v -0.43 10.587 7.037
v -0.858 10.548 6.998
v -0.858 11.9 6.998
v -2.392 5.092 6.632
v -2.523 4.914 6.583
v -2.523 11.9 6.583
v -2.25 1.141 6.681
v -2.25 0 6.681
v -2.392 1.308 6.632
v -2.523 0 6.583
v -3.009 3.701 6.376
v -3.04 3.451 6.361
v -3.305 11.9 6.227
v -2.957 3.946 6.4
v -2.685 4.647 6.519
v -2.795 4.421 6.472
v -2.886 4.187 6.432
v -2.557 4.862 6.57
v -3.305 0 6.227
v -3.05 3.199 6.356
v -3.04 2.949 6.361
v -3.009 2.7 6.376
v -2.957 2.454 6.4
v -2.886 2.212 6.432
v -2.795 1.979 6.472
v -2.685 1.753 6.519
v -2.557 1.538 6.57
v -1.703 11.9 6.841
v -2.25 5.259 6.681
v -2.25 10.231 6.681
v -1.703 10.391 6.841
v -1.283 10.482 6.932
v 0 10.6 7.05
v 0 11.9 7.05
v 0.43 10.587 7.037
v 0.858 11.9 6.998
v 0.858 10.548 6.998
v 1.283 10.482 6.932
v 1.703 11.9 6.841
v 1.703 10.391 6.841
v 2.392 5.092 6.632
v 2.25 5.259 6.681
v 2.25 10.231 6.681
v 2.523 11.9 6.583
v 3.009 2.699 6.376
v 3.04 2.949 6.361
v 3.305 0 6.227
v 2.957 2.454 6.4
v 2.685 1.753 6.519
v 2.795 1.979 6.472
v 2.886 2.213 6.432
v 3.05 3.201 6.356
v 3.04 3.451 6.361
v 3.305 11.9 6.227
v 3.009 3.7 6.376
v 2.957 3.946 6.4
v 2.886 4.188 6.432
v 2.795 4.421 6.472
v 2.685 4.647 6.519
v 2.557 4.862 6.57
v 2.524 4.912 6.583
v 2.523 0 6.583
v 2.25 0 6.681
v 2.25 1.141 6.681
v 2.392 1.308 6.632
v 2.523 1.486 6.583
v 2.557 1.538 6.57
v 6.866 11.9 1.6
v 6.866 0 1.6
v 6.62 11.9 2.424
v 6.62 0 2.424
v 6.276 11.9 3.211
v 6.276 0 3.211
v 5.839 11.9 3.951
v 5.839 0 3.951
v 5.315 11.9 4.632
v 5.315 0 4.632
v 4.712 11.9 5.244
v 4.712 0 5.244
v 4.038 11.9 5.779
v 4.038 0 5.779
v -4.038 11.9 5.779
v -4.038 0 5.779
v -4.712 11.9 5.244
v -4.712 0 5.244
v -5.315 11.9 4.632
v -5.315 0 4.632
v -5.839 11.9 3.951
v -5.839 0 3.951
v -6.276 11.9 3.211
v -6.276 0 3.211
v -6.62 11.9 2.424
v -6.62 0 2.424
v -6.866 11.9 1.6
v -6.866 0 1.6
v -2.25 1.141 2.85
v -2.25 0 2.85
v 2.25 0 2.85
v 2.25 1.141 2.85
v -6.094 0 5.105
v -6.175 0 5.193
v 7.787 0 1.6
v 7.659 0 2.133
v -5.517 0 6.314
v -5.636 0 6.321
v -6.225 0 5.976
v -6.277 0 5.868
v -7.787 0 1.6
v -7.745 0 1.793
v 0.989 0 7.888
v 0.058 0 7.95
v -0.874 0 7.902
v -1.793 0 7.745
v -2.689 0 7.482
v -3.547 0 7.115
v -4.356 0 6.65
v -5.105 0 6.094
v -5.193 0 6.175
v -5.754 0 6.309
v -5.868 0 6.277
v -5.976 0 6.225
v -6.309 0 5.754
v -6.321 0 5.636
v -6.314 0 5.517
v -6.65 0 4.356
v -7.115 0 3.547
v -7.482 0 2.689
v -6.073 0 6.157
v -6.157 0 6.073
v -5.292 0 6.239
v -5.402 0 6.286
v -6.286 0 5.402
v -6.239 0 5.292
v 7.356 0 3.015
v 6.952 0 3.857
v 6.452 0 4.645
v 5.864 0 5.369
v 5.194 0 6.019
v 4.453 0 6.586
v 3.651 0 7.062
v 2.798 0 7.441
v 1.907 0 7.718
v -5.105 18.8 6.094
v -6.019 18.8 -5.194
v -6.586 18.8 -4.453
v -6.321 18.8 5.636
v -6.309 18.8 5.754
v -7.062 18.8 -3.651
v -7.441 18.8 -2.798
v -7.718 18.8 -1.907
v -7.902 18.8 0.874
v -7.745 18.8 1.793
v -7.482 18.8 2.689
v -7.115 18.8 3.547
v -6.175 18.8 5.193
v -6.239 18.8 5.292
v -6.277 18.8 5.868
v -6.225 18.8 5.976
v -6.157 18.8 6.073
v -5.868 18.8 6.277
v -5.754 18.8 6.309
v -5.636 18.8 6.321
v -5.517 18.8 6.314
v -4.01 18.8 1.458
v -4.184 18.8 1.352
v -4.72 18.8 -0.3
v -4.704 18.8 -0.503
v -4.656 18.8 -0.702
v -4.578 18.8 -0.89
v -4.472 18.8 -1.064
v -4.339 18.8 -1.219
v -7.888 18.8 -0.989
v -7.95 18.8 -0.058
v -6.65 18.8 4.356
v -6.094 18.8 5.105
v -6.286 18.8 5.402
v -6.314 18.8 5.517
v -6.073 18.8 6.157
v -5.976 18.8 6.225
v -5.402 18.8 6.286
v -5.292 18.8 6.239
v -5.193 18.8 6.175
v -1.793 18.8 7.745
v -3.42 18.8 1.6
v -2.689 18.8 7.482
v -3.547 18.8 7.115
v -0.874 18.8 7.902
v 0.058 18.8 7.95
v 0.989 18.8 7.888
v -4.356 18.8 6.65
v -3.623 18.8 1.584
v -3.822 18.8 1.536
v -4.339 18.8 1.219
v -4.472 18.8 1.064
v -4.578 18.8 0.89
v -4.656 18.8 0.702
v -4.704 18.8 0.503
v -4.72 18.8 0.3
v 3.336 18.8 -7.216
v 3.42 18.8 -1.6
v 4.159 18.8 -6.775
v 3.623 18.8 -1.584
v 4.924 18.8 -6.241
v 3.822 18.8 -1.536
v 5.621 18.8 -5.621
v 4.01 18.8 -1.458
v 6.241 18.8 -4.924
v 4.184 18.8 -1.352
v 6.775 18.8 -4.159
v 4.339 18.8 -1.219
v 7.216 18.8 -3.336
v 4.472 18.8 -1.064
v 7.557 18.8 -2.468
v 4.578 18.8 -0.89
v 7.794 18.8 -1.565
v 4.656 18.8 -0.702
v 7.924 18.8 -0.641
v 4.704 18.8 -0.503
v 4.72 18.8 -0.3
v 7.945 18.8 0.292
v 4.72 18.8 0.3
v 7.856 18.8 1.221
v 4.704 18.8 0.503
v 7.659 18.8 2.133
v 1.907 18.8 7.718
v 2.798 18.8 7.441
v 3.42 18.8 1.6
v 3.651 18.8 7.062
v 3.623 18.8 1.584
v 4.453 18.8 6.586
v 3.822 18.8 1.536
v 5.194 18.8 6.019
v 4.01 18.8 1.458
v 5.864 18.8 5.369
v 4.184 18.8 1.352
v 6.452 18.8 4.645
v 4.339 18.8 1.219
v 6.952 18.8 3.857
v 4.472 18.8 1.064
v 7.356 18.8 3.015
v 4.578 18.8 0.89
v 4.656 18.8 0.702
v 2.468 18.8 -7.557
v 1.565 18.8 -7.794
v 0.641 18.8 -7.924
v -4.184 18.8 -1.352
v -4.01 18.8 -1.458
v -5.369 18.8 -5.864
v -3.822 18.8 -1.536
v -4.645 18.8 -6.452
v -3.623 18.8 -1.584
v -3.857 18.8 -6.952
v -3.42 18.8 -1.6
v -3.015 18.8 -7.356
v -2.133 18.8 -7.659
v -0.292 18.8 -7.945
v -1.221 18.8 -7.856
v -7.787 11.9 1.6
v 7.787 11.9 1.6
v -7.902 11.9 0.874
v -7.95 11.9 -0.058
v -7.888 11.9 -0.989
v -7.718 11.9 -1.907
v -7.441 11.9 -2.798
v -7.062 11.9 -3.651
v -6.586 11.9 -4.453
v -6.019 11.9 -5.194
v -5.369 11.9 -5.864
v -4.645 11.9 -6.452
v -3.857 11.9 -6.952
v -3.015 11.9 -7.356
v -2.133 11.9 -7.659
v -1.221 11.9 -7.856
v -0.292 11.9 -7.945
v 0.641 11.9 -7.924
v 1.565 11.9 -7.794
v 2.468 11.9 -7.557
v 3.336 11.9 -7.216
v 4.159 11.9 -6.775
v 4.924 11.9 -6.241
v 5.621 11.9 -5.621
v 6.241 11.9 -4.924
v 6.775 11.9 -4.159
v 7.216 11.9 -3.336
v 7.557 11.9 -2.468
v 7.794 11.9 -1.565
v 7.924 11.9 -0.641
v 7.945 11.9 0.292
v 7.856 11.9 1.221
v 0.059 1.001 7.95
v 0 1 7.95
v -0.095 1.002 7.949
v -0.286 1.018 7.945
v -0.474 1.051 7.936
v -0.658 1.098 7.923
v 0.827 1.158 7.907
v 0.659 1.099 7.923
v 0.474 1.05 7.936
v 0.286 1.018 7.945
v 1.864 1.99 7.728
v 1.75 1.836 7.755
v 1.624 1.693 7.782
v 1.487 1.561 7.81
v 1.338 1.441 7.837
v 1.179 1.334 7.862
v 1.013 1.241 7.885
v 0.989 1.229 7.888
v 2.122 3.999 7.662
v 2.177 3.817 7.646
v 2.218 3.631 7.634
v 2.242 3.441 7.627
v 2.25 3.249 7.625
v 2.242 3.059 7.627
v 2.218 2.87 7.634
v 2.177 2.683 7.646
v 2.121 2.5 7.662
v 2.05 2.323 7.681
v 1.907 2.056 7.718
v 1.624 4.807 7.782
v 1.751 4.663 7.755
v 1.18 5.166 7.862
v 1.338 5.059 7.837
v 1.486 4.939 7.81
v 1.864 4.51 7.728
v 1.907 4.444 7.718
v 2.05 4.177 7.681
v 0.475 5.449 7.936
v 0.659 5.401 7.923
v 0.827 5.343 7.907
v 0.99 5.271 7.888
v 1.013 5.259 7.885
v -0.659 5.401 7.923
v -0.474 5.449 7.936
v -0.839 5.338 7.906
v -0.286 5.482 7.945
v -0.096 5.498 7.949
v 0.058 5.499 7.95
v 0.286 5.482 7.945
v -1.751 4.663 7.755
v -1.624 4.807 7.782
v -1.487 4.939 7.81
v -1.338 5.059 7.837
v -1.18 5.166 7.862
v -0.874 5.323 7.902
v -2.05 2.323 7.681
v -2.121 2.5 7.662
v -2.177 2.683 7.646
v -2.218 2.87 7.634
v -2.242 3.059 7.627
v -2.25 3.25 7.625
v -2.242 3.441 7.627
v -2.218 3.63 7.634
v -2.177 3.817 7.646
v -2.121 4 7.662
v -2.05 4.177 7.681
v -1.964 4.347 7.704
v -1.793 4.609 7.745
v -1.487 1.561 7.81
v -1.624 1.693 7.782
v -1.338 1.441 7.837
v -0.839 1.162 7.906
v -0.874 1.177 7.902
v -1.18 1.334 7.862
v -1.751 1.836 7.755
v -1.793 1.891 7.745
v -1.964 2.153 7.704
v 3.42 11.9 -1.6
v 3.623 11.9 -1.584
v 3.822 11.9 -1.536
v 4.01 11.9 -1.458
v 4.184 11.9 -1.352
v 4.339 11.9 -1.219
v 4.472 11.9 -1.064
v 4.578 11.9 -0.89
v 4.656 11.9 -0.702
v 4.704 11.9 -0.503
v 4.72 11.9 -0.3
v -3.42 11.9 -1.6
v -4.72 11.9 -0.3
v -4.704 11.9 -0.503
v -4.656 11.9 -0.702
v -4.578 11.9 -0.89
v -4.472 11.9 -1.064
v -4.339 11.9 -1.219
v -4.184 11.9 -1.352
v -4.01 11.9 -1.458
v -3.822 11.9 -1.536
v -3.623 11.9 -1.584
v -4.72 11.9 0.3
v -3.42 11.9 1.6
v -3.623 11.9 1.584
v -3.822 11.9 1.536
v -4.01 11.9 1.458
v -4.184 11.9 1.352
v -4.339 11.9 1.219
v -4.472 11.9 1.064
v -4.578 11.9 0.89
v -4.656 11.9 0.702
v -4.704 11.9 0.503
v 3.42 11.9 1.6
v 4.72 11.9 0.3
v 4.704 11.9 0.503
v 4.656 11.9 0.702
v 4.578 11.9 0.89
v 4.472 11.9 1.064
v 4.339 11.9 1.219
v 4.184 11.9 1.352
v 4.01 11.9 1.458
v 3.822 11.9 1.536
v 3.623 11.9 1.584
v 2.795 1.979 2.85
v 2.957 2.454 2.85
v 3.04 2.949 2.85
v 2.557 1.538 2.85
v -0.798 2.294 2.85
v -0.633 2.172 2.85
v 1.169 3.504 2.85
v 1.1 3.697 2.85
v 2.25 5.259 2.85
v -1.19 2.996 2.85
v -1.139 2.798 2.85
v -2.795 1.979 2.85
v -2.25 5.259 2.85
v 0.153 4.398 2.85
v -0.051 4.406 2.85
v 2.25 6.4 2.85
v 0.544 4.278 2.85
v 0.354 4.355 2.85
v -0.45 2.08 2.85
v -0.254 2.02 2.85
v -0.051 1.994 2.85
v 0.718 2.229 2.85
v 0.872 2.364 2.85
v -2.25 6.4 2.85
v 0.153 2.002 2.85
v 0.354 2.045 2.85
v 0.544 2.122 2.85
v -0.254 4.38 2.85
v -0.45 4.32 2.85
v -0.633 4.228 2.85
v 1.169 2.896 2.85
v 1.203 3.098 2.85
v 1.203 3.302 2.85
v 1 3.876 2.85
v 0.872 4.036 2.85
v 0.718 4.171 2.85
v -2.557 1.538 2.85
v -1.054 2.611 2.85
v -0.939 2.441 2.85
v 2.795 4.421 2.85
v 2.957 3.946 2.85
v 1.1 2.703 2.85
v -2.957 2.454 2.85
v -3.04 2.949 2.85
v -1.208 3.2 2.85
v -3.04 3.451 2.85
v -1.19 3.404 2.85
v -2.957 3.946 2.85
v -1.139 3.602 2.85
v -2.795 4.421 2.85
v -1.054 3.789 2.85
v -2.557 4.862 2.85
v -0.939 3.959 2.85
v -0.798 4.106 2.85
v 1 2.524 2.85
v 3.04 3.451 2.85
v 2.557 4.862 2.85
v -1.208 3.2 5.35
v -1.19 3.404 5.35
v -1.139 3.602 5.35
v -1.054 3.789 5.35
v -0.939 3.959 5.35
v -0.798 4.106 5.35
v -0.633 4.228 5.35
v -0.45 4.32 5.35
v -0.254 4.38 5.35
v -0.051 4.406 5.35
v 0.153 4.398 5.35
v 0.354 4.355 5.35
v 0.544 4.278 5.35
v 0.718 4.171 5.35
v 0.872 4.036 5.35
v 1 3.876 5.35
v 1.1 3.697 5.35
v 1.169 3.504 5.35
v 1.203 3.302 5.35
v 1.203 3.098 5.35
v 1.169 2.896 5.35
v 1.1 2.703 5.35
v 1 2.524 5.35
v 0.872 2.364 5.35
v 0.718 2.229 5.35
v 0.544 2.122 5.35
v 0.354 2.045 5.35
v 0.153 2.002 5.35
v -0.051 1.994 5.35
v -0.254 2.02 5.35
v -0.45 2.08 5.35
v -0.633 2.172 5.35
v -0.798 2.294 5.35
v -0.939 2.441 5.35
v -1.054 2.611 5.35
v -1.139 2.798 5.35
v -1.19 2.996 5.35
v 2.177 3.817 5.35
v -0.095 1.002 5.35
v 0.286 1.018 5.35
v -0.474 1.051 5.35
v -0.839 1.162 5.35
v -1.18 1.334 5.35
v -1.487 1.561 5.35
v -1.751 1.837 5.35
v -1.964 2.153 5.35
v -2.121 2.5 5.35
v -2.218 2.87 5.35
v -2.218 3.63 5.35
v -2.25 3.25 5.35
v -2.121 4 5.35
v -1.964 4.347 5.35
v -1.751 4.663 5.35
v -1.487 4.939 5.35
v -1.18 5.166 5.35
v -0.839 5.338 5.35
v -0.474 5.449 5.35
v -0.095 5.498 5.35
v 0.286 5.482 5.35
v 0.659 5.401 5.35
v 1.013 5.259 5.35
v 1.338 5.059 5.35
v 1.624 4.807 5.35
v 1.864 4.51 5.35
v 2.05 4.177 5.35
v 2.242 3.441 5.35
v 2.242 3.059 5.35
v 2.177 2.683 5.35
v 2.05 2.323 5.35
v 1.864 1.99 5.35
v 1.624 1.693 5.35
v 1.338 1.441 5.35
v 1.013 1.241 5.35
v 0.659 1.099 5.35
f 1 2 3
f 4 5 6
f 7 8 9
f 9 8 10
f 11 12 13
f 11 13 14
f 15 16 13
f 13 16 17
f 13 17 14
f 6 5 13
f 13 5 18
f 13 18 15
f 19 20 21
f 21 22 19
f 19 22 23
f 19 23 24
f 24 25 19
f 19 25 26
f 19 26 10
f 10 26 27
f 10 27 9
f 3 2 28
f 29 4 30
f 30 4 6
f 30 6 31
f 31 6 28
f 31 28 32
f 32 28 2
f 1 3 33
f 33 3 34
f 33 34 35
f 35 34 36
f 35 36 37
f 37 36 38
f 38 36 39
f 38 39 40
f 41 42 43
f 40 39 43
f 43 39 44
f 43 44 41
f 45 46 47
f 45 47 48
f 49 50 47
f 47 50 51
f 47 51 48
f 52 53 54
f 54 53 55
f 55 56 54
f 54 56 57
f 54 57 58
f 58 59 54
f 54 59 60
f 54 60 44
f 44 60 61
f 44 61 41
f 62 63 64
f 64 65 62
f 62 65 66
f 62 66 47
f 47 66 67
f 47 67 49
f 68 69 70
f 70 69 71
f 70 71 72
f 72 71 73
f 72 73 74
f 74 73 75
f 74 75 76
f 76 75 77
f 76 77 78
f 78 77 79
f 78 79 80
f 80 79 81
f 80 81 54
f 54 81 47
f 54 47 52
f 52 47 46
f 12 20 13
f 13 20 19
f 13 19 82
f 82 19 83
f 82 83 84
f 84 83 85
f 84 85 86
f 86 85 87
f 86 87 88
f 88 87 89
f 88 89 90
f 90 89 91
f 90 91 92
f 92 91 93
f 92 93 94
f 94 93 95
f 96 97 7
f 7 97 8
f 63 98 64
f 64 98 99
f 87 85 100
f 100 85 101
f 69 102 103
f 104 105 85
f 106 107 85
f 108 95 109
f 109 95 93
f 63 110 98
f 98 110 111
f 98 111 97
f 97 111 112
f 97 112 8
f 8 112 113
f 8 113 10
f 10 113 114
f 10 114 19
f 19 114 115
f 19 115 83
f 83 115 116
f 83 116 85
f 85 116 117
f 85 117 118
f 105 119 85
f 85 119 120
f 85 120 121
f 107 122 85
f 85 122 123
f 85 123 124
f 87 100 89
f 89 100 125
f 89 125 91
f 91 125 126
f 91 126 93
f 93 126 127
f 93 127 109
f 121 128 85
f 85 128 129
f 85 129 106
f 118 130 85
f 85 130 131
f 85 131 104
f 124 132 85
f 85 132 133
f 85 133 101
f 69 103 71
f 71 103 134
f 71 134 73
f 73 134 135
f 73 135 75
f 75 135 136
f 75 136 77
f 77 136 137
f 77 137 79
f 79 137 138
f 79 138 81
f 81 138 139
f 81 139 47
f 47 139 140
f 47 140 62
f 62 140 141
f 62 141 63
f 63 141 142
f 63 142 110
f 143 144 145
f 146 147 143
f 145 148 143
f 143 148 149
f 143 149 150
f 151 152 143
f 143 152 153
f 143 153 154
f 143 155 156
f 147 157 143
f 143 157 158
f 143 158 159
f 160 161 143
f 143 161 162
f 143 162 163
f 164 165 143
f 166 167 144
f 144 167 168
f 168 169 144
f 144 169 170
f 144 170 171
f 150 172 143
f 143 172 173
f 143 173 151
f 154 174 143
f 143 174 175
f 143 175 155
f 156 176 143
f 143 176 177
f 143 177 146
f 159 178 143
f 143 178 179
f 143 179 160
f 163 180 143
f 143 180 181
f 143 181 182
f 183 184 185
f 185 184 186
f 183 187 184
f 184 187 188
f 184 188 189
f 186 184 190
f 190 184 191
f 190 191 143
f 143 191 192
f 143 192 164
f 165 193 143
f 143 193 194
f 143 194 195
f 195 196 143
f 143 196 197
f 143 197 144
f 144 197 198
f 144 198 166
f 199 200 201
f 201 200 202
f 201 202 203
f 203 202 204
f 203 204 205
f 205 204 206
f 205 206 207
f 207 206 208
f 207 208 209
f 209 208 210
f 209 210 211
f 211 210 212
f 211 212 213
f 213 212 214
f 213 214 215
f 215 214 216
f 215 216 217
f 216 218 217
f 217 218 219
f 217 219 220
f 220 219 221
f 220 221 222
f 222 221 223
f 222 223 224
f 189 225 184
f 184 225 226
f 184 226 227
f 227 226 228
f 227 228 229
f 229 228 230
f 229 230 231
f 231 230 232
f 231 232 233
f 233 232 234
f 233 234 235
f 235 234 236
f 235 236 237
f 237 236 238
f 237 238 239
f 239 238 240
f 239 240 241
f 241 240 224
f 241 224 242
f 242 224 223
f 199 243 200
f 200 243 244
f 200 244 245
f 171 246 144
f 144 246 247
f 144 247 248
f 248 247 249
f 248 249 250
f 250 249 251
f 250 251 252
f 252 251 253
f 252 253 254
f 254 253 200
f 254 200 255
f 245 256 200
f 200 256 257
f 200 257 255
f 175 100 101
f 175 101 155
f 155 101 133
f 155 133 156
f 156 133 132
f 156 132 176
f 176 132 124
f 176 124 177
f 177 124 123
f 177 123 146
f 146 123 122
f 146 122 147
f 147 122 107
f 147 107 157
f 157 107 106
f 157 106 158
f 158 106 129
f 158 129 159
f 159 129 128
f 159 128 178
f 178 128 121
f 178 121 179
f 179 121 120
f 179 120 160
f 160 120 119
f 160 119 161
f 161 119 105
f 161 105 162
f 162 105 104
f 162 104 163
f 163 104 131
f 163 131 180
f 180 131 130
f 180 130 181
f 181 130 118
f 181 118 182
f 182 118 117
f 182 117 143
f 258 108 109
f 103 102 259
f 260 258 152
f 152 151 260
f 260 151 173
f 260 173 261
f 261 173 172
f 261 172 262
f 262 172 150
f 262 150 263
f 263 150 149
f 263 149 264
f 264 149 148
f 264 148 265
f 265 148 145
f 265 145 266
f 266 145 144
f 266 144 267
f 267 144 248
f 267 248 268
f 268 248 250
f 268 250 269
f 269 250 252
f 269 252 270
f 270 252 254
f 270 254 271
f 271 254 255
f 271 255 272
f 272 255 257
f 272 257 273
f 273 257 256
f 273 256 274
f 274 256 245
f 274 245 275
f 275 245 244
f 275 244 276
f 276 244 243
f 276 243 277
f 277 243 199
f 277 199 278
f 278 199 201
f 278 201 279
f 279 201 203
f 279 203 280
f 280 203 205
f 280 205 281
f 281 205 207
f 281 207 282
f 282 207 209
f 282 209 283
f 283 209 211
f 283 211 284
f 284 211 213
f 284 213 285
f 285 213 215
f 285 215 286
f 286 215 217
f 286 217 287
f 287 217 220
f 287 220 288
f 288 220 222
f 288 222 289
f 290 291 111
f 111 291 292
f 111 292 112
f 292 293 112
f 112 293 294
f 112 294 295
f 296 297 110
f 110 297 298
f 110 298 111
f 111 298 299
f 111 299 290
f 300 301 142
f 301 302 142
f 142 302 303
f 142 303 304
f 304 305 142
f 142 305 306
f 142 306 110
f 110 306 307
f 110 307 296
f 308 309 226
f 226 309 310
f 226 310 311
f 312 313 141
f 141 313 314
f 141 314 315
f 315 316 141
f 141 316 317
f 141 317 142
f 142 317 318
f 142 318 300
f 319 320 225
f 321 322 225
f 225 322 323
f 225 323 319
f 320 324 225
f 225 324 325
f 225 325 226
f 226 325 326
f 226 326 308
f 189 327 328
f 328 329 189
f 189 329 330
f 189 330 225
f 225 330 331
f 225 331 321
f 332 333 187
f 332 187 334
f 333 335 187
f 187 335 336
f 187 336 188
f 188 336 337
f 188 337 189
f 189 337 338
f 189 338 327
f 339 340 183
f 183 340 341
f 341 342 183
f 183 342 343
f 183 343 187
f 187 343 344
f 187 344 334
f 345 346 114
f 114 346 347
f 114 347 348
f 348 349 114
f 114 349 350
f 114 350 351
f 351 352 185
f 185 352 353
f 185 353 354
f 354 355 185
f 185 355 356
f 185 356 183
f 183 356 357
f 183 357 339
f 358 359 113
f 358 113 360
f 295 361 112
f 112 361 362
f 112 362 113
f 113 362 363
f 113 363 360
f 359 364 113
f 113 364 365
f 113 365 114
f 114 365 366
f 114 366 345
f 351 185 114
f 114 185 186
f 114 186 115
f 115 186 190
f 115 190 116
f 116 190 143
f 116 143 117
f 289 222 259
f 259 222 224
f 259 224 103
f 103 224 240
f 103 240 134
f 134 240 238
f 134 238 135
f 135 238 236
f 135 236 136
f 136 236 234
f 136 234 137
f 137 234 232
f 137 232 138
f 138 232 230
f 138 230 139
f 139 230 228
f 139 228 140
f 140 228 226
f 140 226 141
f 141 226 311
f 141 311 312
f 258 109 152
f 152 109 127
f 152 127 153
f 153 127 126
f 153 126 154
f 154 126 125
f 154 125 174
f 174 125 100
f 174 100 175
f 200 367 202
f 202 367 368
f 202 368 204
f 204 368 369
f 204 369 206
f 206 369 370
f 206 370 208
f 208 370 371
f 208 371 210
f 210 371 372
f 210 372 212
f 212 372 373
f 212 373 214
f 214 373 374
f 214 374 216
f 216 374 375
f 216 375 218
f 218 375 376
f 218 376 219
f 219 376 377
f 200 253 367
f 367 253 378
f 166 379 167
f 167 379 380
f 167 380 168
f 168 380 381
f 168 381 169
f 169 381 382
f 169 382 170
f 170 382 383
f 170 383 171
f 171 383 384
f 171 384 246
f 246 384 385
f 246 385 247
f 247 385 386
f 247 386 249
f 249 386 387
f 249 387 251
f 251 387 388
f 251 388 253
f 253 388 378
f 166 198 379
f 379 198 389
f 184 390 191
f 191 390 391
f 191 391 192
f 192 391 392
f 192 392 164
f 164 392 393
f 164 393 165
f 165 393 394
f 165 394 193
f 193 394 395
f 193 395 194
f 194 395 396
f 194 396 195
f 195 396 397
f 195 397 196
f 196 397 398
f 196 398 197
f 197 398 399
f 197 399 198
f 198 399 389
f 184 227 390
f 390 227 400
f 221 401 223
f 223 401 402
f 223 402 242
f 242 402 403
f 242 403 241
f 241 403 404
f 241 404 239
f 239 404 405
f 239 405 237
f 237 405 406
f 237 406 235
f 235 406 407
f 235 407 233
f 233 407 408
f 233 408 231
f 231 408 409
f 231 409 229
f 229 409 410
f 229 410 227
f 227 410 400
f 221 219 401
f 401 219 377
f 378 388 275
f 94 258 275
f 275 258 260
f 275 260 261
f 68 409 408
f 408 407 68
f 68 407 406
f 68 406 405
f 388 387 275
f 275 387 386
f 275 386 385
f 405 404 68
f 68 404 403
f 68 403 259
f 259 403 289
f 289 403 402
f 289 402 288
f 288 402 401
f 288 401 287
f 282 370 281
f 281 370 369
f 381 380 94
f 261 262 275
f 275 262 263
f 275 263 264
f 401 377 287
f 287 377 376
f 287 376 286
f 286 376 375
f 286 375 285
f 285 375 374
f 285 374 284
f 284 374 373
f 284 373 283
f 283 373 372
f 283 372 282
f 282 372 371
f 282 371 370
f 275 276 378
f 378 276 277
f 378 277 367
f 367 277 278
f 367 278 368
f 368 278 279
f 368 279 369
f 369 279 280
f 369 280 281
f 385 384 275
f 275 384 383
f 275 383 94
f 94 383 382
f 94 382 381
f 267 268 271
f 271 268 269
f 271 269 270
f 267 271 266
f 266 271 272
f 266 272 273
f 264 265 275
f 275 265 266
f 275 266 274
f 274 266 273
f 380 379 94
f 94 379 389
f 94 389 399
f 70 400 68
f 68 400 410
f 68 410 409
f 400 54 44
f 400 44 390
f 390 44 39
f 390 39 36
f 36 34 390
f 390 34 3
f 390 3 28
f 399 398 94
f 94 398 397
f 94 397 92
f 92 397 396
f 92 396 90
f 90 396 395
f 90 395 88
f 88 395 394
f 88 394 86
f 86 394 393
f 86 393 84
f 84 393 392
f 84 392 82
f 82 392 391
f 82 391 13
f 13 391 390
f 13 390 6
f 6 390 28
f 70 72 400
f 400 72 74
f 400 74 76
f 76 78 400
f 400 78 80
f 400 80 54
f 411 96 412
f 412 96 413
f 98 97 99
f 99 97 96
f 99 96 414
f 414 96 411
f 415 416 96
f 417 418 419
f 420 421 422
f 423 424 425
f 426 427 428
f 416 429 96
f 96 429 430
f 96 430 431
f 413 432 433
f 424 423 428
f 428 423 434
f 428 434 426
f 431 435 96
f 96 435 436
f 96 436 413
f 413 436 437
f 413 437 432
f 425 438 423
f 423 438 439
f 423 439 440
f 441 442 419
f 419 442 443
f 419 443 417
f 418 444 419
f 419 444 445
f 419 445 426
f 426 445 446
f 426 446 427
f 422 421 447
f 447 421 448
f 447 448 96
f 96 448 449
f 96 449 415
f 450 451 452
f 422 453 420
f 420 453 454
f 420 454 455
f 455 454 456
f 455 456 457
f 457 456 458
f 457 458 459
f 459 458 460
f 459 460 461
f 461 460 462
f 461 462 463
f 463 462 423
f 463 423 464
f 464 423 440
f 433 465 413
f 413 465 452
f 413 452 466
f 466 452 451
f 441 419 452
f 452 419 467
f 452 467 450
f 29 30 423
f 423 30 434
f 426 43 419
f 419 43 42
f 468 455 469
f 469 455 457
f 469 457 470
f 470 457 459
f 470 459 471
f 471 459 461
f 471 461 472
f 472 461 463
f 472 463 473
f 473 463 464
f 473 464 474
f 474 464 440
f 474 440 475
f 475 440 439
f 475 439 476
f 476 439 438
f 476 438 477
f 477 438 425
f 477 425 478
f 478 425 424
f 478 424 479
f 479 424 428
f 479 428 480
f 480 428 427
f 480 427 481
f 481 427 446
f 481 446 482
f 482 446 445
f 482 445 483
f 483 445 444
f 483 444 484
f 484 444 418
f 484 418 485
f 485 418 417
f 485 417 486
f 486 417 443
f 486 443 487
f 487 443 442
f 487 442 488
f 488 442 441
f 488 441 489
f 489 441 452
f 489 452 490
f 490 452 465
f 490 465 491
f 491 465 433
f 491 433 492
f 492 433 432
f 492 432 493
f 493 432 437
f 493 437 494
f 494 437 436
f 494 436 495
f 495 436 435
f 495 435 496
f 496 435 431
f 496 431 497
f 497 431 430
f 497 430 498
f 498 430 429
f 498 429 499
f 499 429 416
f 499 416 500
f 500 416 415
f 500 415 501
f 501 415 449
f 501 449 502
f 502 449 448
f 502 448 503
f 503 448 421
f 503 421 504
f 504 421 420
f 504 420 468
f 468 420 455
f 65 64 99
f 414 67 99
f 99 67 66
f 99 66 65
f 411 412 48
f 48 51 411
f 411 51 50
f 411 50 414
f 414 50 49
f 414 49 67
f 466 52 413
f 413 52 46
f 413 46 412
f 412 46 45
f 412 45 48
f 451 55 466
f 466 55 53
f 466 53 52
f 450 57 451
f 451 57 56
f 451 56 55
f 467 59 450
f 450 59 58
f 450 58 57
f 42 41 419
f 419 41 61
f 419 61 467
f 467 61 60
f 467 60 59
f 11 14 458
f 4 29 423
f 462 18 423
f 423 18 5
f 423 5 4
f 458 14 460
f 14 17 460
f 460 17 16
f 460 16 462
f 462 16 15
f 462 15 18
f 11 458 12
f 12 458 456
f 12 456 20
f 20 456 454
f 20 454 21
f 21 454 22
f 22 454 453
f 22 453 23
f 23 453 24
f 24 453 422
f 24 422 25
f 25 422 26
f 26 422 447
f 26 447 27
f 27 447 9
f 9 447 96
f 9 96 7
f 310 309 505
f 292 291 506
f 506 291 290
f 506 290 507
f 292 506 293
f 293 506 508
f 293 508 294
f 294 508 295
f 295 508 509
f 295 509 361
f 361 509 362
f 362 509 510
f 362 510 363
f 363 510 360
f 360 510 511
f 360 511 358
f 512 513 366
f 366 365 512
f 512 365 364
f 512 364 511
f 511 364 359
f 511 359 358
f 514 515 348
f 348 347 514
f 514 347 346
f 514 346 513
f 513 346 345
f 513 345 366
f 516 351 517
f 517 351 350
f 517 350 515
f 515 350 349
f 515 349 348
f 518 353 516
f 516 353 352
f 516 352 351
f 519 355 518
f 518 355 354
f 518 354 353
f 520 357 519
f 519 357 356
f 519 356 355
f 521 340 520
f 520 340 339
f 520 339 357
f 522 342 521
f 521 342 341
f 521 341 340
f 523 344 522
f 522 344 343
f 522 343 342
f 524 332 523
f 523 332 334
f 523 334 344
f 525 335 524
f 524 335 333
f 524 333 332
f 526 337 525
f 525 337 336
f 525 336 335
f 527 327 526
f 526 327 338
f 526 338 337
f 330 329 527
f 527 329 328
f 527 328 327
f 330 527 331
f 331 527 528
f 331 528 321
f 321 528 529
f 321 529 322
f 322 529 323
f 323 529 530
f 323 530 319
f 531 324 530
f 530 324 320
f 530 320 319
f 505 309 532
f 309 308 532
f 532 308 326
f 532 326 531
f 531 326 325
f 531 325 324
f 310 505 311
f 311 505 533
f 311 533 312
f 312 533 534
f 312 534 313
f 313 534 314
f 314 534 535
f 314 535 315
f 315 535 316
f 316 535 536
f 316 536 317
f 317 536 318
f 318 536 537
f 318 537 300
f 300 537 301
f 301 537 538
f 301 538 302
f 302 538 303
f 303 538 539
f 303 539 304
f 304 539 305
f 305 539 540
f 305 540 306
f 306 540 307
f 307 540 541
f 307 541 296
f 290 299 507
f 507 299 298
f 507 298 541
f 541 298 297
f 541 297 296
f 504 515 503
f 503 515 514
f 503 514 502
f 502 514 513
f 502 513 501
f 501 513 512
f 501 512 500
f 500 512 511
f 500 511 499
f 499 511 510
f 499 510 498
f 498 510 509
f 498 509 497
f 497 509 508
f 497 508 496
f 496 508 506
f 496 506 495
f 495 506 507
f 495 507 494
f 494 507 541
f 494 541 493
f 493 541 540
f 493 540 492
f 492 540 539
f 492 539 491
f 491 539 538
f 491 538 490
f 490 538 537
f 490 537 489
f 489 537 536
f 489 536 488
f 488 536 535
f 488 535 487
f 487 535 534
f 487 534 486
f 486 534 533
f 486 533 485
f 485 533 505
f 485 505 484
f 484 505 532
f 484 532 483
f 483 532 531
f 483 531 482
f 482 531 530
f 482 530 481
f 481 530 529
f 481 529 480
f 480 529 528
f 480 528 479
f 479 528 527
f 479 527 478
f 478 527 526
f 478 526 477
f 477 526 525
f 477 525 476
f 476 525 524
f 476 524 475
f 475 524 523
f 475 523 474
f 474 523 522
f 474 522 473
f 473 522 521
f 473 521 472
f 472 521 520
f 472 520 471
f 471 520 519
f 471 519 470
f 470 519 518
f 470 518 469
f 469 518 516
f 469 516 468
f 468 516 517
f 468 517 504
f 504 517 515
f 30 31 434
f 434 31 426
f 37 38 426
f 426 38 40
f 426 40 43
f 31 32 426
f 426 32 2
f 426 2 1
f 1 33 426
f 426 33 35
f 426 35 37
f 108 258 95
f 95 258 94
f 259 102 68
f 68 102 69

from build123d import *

# Parameters (mm, degrees)
BOSS_EXTRUDE1_DEPTH = 18.8
CUT_EXTRUDE2_DEPTH  = 11.9
BOSS_EXTRUDE2_DEPTH = 6.4
SKETCH9_R           = 1.2075
CUT_EXTRUDE3_DEPTH  = 2.5
SKETCH9_4_R         = 3.05
SKETCH9_4_R_2       = 1.2075
BOSS_EXTRUDE5_DEPTH = 4
SKETCH11_R          = 2.25
CUT_EXTRUDE8_DEPTH  = 3.6
BOSS_EXTRUDE6_DEPTH = 4.5
CUT_EXTRUDE9_DEPTH  = 11.9
CUT_EXTRUDE10_DEPTH = 11.9


with BuildPart() as part:
    # Sketch2 → Boss-Extrude1 (new body)
    with BuildSketch(Plane(origin=(0, 0, 0), x_dir=(1, 0, 0), z_dir=(0, 1, 0))):
        with BuildLine():
            ThreePointArc((-5.105212739, -6.0942024), (5.62149891, 5.62149891), (-6.0942024, -5.105212739))
            ThreePointArc((-6.0942024, -5.105212739), (-6.116473657, -6.116473657), (-5.105212739, -6.0942024))
        make_face()
        with BuildLine():
            Line((-3.42, 1.6), (3.42, 1.6))
            ThreePointArc((3.42, 1.6), (4.339238816, 1.219238816), (4.72, 0.3))
            Line((4.72, 0.3), (4.72, -0.3))
            ThreePointArc((4.72, -0.3), (4.339238816, -1.219238816), (3.42, -1.6))
            Line((3.42, -1.6), (-3.42, -1.6))
            ThreePointArc((-3.42, -1.6), (-4.339238816, -1.219238816), (-4.72, -0.3))
            Line((-4.72, -0.3), (-4.72, 0.3))
            ThreePointArc((-4.72, 0.3), (-4.339238816, 1.219238816), (-3.42, 1.6))
        make_face(mode=Mode.SUBTRACT)
    extrude(amount=BOSS_EXTRUDE1_DEPTH)

    # Sketch3 → Cut-Extrude2 (cut)
    with BuildSketch(Plane(origin=(0, 0, 0), x_dir=(1, 0, 0), z_dir=(0, 1, 0))):
        with BuildLine():
            Line((-5.98, 3.733912158), (-5.98, -3.733912158))
            ThreePointArc((-5.98, -3.733912158), (-4.924640659, -5.044840372), (-3.588648771, -6.068286414))
            ThreePointArc((-3.588648771, -6.068286414), (3.493030644, -6.12382535), (7.05, 0))
            ThreePointArc((7.05, 0), (1.94209938, 6.777222883), (-5.98, 3.733912158))
        make_face()
        with BuildLine():
            Line((-4.72, -0.3), (-4.72, 0.3))
            ThreePointArc((-4.72, 0.3), (-4.339238816, 1.219238816), (-3.42, 1.6))
            Line((-3.42, 1.6), (3.42, 1.6))
            ThreePointArc((3.42, 1.6), (4.339238816, 1.219238816), (4.72, 0.3))
            Line((4.72, 0.3), (4.72, -0.3))
            ThreePointArc((4.72, -0.3), (4.339238816, -1.219238816), (3.42, -1.6))
            Line((3.42, -1.6), (-3.42, -1.6))
            ThreePointArc((-3.42, -1.6), (-4.339238816, -1.219238816), (-4.72, -0.3))
        make_face(mode=Mode.SUBTRACT)
    extrude(amount=CUT_EXTRUDE2_DEPTH, mode=Mode.SUBTRACT)

    # Sketch4 → Boss-Extrude2 (add)
    with BuildSketch(Plane.XZ):
        with BuildLine():
            Line((-2.25, 6.681317235), (-2.25, 2.85))
            Line((-2.25, 2.85), (2.25, 2.85))
            Line((2.25, 2.85), (2.25, 6.681317235))
            ThreePointArc((2.25, 6.681317235), (0, 7.05), (-2.25, 6.681317235))
        make_face()
    extrude(amount=-BOSS_EXTRUDE2_DEPTH)

    # Sketch9 → Cut-Extrude3 (cut)
    with BuildSketch(Plane(origin=(0, 0, 2.85), x_dir=(-1, 0, 0), z_dir=(0, 0, -1))):
        with Locations((0, 3.2)):
            Circle(SKETCH9_R)
    extrude(amount=-CUT_EXTRUDE3_DEPTH, mode=Mode.SUBTRACT)

    # Sketch9_4 → Boss-Extrude5 (add)
    with BuildSketch(Plane(origin=(0, 0, 2.85), x_dir=(-1, 0, 0), z_dir=(0, 0, -1))):
        with Locations((0, 3.2)):
            Circle(SKETCH9_4_R)
        with Locations((0, 3.2)):
            Circle(SKETCH9_4_R_2, mode=Mode.SUBTRACT)
    extrude(amount=-BOSS_EXTRUDE5_DEPTH)

    # Sketch11 → Cut-Extrude8 (cut, through all)
    with BuildSketch(Plane(origin=(0, 0, 5.35), x_dir=(-1, 0, 0), z_dir=(0, 0, -1))):
        with Locations((0, 3.25)):
            Circle(SKETCH11_R)
    extrude(amount=-CUT_EXTRUDE8_DEPTH, mode=Mode.SUBTRACT)

    # Sketch15 → Boss-Extrude6 (add)
    with BuildSketch(Plane.ZY.offset(2.25)):
        Polygon((2.85, 6.4), (7.35, 6.4), (7.35, 10.9), align=None)
    extrude(amount=-BOSS_EXTRUDE6_DEPTH)

    # Sketch3_3 → Cut-Extrude9 (cut)
    with BuildSketch(Plane(origin=(0, 0, 0), x_dir=(1, 0, 0), z_dir=(0, 1, 0))):
        with BuildLine():
            ThreePointArc((-5.98, 3.733912158), (-7.05, 0), (-5.98, -3.733912158))
            Line((-5.98, -3.733912158), (-5.98, 3.733912158))
        make_face()
    extrude(amount=CUT_EXTRUDE9_DEPTH, mode=Mode.SUBTRACT)

    # Sketch16 → Cut-Extrude10 (cut)
    with BuildSketch(Plane.XZ):
        Polygon((7.95, -7.95), (-7.95, -7.95), (-7.95, 0), (-7.95, 1.6), (7.95, 1.6), (7.95, 0), align=None)
    extrude(amount=-CUT_EXTRUDE10_DEPTH, mode=Mode.SUBTRACT)


solid = part.part
